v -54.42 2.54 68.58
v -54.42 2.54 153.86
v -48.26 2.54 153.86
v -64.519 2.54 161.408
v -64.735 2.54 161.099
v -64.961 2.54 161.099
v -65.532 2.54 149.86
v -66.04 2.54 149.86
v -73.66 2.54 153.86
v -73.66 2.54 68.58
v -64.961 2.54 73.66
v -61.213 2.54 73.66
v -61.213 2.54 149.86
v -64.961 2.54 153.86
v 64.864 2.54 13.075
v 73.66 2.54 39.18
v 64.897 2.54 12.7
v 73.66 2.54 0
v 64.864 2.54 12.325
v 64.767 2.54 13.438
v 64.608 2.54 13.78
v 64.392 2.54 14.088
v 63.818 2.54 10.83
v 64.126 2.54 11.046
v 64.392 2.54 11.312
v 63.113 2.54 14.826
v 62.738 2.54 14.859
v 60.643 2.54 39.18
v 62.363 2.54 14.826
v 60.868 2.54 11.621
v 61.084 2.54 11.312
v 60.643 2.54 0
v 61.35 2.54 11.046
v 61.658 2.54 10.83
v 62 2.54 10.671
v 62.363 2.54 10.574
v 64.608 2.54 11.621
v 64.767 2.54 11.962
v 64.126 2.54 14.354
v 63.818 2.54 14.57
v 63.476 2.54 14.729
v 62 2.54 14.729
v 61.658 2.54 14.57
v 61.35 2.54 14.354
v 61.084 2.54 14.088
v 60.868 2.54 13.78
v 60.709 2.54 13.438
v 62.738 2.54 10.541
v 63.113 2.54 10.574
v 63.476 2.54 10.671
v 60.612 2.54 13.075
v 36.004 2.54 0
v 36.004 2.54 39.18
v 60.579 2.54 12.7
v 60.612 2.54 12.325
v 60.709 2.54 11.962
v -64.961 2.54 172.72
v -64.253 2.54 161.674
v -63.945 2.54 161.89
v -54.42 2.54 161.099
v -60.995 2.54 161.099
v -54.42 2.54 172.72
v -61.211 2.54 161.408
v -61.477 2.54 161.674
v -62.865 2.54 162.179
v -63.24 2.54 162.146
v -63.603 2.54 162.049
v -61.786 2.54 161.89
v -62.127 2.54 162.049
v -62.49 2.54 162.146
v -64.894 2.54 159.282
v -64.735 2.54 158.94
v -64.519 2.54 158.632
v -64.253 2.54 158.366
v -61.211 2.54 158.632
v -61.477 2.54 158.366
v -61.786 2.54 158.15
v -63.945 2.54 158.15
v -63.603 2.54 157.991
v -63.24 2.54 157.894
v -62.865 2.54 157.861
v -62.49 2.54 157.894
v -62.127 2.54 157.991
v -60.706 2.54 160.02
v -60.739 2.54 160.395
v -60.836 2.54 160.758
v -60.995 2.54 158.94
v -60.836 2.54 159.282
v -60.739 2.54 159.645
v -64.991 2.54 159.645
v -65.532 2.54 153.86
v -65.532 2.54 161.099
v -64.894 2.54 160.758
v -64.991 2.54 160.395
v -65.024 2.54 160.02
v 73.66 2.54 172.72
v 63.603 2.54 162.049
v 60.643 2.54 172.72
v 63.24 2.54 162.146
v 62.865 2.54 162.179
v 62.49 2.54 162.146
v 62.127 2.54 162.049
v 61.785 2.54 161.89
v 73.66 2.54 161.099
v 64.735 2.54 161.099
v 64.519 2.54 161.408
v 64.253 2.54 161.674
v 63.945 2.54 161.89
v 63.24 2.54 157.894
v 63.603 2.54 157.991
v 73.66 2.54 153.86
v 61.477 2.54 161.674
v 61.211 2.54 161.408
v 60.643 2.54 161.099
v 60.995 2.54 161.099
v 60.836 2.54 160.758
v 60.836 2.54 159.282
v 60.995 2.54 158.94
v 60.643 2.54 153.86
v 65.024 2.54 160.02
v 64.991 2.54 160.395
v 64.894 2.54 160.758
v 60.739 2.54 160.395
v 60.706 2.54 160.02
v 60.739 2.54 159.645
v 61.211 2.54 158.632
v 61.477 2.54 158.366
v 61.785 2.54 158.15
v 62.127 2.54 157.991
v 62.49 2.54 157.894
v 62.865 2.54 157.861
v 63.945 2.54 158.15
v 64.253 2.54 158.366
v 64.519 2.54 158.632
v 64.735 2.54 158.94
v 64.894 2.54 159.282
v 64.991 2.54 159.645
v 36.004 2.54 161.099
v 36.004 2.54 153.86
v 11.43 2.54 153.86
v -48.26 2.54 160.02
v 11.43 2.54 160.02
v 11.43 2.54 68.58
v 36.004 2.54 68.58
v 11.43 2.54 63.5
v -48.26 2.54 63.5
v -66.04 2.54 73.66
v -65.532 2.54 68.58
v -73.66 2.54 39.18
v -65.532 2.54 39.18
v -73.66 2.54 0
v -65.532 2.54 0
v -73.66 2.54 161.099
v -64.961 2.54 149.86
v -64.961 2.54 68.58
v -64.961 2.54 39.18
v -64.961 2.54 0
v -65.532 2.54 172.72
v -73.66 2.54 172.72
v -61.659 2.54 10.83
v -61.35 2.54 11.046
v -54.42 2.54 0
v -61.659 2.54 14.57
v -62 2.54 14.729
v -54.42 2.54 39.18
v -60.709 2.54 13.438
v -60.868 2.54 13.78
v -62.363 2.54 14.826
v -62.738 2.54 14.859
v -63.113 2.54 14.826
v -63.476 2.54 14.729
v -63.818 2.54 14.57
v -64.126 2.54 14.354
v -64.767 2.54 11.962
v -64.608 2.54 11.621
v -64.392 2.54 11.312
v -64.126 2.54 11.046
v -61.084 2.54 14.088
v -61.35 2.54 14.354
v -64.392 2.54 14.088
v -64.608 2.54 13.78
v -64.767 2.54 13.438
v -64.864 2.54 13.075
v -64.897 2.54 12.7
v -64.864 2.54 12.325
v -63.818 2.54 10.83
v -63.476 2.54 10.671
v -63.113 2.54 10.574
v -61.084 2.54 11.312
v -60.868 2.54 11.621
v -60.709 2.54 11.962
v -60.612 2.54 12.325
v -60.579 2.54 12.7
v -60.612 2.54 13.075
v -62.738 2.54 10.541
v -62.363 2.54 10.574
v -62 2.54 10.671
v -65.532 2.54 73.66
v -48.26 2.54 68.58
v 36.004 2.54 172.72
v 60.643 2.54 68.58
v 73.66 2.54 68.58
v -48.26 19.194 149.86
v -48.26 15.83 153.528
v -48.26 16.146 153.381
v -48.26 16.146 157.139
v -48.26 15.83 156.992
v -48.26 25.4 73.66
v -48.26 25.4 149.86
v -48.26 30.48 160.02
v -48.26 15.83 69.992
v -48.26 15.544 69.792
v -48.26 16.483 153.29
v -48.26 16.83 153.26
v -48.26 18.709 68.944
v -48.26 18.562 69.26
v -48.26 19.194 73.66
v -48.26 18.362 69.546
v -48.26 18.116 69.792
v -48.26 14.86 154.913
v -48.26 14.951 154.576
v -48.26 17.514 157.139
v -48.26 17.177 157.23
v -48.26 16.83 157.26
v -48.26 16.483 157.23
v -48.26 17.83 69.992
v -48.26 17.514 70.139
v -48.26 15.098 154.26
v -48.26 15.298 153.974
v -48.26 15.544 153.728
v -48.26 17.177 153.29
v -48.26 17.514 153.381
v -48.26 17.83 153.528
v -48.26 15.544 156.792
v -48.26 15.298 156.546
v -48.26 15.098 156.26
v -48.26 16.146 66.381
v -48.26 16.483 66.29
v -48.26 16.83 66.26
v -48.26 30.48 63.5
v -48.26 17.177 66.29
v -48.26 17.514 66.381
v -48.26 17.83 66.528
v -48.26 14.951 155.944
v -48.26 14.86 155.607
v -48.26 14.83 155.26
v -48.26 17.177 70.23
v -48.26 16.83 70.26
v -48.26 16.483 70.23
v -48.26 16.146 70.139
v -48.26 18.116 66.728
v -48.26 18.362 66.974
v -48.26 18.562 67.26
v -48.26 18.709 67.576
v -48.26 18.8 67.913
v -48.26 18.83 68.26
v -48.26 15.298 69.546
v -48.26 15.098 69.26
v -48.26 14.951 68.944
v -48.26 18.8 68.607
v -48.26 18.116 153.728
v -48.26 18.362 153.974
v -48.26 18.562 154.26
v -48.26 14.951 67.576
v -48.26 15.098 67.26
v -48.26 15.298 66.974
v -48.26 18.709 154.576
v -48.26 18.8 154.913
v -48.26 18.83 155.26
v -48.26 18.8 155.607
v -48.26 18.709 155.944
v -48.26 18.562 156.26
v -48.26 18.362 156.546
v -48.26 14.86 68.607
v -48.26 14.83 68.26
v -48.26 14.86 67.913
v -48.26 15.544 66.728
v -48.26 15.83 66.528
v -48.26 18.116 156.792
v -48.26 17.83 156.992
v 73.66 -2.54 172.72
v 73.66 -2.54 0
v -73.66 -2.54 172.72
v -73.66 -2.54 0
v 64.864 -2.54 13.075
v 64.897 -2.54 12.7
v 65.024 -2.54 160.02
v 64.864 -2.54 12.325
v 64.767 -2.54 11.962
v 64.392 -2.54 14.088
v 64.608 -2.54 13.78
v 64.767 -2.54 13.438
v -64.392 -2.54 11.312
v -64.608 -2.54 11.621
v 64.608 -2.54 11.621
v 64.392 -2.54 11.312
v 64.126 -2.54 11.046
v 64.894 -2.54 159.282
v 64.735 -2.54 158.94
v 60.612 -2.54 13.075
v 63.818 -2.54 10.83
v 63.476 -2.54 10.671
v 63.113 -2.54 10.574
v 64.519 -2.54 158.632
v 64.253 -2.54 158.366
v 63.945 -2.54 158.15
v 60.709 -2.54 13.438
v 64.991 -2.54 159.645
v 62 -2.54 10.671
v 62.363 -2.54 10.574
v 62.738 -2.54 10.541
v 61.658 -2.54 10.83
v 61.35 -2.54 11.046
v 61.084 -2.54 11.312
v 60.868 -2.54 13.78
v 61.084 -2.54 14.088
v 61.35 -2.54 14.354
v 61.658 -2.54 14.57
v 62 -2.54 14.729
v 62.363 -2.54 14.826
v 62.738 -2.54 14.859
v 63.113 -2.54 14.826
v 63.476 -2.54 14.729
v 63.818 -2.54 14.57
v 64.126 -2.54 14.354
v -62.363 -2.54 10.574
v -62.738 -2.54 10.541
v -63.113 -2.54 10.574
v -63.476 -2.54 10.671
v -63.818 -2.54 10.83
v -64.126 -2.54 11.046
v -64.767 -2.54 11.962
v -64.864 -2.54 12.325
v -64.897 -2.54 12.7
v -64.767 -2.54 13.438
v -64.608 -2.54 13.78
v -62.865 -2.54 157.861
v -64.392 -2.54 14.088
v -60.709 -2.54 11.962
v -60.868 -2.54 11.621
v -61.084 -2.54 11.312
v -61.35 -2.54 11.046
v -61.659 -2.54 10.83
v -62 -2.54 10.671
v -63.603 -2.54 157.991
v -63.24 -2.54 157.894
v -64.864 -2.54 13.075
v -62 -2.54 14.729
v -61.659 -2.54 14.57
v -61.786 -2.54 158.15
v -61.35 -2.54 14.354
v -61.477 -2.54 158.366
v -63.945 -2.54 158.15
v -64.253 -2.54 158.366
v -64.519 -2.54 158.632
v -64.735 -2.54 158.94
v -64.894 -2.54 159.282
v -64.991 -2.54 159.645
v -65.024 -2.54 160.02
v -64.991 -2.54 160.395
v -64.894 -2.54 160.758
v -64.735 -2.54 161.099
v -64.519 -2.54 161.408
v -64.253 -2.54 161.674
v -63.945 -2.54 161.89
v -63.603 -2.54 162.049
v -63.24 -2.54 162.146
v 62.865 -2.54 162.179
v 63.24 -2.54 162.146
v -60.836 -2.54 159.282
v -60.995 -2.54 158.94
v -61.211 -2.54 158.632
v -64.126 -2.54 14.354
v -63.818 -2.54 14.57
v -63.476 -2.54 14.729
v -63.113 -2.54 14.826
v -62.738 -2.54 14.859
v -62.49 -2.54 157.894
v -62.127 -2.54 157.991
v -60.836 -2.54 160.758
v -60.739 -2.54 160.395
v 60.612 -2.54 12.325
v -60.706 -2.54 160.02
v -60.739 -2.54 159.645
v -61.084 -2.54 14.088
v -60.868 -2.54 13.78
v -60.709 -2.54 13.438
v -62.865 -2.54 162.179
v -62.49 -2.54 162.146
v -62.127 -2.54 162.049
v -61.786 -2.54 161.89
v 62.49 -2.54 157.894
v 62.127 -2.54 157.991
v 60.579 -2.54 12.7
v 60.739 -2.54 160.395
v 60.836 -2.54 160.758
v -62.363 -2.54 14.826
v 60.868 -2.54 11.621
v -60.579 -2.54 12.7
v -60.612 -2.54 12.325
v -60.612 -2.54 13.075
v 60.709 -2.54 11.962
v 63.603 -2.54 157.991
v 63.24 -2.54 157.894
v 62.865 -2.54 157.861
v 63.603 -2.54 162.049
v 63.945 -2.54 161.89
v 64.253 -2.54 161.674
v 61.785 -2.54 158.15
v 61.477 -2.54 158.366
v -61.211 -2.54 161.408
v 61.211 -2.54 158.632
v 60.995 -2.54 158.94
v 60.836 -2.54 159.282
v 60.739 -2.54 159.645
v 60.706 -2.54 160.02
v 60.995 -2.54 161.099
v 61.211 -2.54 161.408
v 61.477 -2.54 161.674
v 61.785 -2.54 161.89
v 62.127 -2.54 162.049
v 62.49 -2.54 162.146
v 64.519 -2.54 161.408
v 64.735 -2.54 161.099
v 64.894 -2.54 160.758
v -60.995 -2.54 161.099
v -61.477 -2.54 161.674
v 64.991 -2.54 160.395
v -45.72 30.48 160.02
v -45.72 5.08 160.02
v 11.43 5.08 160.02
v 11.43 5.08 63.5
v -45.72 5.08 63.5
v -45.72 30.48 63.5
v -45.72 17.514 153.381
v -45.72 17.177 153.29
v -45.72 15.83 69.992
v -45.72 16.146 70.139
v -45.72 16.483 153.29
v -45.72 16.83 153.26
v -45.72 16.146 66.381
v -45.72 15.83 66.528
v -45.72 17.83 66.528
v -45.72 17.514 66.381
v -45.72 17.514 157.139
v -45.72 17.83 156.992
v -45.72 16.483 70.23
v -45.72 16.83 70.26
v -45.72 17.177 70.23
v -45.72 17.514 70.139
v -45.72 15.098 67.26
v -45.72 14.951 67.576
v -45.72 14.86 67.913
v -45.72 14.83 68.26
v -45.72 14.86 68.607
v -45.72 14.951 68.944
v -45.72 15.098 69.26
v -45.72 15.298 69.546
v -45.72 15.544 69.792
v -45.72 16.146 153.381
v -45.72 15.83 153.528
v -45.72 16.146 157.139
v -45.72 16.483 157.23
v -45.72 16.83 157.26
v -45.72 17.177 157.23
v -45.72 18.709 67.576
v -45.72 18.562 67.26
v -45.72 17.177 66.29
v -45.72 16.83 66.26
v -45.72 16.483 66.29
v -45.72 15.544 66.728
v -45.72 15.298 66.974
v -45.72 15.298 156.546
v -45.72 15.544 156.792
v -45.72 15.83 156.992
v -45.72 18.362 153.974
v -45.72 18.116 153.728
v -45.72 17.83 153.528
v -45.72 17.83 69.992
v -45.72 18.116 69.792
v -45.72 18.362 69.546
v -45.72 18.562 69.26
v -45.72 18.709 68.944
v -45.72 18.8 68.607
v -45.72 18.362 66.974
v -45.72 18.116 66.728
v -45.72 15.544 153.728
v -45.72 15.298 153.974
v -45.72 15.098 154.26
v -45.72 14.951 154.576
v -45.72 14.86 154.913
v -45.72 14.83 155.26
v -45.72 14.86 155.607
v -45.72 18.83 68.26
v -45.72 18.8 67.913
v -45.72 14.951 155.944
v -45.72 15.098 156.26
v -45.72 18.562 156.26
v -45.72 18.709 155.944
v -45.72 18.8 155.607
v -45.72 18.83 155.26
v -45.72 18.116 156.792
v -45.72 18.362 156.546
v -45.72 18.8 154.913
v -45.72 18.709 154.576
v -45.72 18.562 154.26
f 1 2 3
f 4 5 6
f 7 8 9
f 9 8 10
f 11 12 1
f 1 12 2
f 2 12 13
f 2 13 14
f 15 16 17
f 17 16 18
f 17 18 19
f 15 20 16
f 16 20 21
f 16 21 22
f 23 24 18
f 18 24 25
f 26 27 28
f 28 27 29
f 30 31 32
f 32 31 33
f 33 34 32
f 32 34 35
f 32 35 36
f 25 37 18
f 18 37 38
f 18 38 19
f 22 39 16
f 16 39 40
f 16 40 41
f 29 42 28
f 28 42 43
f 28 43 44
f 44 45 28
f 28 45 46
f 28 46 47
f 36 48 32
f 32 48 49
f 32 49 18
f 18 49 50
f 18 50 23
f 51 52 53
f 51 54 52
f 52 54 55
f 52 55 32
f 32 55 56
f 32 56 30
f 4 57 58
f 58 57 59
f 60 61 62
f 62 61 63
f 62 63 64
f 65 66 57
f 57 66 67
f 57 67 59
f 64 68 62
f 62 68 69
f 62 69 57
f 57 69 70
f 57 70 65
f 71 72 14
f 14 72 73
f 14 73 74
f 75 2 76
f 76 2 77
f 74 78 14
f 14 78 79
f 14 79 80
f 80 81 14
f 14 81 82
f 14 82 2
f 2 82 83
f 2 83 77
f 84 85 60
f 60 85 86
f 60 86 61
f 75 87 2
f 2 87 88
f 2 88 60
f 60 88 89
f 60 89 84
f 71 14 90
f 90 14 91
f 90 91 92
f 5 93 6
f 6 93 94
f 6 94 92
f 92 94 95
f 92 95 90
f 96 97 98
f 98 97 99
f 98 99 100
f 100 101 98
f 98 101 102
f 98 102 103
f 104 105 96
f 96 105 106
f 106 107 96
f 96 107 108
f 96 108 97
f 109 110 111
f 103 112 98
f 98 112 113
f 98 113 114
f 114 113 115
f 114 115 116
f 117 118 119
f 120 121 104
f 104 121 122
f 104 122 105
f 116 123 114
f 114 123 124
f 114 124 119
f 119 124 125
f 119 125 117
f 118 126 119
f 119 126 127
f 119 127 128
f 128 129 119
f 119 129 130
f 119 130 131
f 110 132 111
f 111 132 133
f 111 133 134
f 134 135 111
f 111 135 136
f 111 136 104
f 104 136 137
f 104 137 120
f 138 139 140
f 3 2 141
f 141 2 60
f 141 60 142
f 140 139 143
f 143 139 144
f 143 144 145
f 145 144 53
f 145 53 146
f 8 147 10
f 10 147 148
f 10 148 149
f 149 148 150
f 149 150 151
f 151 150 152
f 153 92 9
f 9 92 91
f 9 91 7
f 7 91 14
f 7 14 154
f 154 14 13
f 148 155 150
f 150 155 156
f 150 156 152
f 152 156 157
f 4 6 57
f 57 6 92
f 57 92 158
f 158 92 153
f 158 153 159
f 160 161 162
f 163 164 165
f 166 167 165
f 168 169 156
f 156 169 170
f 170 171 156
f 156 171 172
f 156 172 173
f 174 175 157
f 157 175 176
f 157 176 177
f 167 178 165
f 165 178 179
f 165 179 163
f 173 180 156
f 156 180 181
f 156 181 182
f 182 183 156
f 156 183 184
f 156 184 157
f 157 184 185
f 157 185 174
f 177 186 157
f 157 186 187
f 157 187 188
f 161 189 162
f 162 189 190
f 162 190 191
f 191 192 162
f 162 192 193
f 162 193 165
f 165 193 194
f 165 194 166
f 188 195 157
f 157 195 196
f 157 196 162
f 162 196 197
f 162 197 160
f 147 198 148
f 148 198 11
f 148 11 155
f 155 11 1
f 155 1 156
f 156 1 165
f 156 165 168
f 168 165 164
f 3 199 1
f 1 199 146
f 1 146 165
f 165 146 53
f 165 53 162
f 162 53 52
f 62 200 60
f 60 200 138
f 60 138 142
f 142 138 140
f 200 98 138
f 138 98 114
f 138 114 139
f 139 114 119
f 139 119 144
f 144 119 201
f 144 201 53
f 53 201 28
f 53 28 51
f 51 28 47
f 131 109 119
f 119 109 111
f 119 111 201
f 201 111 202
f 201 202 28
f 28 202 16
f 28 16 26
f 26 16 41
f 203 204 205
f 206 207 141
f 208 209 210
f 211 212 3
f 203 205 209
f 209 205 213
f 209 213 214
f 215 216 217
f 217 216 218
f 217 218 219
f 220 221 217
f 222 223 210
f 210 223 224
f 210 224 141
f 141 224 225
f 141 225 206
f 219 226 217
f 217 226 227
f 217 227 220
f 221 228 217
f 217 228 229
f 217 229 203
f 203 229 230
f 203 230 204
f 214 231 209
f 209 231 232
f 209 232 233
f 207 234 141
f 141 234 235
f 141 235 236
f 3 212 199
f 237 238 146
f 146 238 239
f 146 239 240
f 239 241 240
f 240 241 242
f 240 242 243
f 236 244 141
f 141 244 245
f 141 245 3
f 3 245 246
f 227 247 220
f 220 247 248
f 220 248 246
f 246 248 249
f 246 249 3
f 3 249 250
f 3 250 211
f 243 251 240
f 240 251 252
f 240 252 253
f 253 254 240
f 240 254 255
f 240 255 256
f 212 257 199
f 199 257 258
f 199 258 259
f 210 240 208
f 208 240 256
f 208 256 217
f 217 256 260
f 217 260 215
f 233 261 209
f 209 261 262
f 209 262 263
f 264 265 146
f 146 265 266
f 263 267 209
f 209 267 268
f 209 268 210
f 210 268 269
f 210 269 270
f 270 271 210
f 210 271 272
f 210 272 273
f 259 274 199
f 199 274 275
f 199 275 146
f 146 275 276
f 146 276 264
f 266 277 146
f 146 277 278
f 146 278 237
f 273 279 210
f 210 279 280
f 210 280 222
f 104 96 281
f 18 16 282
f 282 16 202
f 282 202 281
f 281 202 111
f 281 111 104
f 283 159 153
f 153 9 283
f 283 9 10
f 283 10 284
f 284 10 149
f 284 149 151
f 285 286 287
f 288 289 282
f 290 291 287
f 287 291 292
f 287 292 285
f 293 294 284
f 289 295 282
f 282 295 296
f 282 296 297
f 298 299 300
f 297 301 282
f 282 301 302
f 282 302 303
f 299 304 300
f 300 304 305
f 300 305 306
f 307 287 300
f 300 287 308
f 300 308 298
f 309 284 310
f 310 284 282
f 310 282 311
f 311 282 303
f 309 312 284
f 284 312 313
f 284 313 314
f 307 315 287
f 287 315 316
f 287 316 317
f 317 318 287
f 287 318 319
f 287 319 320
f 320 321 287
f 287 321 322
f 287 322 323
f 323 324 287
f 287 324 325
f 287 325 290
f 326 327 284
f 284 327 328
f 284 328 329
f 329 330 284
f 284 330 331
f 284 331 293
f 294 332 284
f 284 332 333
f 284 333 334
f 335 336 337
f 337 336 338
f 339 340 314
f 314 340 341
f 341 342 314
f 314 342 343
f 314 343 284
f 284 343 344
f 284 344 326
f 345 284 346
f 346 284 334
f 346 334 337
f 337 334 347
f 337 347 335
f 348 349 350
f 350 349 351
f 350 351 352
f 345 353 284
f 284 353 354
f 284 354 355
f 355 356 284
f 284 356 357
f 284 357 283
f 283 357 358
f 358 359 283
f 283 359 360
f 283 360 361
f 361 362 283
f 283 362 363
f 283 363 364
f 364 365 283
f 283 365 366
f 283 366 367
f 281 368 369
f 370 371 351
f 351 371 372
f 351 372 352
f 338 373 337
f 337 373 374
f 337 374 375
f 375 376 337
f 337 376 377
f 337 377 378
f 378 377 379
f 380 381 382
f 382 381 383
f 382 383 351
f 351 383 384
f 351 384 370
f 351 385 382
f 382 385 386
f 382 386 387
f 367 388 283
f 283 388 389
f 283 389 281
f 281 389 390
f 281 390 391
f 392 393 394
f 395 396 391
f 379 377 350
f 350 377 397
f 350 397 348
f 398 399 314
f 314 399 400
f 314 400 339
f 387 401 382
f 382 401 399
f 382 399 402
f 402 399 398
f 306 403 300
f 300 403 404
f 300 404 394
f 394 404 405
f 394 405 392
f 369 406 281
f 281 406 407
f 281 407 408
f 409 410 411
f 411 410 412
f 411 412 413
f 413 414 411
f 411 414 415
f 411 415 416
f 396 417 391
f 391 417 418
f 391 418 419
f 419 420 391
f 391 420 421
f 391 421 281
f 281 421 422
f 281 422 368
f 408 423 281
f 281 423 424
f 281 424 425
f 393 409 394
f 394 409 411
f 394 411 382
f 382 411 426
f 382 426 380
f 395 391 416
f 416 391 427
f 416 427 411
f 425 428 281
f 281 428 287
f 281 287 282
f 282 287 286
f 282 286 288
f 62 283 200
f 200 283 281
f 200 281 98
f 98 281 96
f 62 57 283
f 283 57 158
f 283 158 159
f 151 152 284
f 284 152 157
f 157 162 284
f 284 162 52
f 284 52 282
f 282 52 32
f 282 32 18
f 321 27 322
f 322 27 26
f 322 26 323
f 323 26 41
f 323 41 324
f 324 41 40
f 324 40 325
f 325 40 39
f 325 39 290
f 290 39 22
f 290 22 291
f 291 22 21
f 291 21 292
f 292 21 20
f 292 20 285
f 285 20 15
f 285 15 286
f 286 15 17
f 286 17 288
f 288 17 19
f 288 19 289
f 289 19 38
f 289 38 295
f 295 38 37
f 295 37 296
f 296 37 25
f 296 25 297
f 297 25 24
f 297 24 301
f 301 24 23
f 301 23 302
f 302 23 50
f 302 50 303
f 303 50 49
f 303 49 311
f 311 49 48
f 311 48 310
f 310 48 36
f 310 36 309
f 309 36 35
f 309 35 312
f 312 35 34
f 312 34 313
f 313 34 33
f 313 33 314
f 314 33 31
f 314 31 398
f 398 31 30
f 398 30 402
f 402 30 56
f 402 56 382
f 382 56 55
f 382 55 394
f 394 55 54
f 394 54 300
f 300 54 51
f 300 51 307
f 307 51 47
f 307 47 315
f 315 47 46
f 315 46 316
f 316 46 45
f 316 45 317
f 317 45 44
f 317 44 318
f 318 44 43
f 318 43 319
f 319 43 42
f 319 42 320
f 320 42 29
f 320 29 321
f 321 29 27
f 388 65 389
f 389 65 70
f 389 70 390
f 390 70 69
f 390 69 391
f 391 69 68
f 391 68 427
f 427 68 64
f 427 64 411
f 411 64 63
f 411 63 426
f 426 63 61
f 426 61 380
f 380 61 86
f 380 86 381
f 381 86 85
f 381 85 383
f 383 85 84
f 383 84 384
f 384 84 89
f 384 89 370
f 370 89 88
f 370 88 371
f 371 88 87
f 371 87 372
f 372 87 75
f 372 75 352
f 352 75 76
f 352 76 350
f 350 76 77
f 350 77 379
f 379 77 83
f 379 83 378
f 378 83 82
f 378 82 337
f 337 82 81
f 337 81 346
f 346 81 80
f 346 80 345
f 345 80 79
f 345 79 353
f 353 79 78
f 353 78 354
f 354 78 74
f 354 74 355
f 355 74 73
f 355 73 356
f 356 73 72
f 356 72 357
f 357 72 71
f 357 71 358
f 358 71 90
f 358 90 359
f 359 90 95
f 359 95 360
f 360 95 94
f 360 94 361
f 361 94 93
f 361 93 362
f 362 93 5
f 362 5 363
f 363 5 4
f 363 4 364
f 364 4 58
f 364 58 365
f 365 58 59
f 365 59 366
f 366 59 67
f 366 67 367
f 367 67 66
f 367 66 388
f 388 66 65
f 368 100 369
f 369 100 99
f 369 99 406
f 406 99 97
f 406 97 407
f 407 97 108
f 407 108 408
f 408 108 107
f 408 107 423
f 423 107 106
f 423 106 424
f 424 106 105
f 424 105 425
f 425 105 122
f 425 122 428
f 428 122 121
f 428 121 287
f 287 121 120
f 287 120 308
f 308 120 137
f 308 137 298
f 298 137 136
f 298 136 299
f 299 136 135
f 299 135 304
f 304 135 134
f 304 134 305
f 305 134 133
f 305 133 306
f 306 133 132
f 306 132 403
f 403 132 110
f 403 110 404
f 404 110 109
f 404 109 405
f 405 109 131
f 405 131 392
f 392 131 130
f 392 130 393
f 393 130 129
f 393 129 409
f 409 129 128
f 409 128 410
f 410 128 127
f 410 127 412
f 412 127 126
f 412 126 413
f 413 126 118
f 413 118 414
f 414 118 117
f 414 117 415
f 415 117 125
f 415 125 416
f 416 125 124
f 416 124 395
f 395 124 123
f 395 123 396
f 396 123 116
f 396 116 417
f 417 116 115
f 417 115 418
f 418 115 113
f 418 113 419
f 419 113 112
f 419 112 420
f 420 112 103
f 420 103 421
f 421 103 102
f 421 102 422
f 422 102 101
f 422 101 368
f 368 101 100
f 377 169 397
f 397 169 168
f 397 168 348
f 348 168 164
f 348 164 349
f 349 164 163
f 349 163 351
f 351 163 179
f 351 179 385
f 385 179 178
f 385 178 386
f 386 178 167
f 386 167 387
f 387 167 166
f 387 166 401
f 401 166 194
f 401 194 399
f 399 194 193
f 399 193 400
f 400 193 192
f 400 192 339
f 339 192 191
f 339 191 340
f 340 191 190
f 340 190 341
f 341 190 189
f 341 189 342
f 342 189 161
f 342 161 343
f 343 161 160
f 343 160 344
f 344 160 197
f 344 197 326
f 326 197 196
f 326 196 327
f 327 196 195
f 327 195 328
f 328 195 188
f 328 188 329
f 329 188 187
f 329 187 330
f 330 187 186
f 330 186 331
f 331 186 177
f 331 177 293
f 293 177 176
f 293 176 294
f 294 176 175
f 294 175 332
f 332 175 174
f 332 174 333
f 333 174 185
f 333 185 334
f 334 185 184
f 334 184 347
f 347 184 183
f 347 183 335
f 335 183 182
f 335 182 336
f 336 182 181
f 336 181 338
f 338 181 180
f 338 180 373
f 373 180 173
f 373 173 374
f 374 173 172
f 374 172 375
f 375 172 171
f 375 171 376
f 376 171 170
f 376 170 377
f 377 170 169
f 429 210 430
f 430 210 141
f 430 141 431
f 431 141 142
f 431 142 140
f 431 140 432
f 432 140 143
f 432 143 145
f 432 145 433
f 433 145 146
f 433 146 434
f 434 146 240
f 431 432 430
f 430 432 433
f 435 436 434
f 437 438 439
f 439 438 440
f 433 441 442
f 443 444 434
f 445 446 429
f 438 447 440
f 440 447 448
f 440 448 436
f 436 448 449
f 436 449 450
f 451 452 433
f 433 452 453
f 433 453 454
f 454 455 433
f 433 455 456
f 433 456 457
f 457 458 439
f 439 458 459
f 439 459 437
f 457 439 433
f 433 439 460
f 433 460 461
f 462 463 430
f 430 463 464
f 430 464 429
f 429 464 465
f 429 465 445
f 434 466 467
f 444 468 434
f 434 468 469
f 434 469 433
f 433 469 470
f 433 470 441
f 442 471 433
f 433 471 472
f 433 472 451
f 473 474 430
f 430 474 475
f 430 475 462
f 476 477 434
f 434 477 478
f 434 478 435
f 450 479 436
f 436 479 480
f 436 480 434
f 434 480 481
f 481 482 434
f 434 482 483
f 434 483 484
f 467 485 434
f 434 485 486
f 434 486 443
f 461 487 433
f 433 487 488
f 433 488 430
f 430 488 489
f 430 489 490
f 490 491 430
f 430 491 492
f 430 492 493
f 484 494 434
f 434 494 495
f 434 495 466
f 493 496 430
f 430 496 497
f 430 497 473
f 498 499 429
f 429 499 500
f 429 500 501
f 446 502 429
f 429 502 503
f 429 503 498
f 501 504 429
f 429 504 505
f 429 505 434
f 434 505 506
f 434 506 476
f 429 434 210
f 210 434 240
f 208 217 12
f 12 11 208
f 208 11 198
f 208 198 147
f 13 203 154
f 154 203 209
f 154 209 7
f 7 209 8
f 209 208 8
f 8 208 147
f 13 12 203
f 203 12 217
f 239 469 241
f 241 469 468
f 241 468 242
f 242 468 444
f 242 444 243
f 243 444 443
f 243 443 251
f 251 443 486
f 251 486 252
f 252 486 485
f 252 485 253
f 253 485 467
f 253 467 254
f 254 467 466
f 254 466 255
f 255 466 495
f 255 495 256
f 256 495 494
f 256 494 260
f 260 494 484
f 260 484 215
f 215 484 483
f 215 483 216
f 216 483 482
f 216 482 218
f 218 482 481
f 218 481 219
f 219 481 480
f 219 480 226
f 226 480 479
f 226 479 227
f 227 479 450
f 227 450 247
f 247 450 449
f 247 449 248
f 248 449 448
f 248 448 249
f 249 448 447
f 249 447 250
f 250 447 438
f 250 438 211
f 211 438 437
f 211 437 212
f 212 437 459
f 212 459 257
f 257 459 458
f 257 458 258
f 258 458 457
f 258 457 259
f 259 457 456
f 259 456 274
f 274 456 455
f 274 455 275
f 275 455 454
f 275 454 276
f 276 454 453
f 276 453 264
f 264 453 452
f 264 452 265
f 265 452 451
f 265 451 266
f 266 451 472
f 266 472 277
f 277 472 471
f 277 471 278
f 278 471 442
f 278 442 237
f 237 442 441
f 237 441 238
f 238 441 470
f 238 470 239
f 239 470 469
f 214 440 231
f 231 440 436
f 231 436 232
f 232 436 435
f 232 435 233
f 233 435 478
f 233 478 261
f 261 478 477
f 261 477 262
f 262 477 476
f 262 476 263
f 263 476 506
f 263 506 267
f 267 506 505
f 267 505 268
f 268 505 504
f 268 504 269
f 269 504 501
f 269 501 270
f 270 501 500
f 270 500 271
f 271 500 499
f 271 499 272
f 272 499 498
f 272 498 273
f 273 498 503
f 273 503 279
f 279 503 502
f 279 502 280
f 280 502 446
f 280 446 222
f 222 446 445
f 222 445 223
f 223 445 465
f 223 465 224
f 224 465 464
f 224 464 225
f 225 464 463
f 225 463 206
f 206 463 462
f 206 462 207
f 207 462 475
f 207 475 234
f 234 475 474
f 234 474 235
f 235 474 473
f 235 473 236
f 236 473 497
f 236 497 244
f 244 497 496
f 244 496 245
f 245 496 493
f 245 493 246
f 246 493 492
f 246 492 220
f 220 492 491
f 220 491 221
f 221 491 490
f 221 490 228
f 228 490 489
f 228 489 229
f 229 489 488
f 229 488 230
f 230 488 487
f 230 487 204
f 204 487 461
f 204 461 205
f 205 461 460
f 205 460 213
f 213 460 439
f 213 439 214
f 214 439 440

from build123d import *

# Parameters (mm, degrees)
SKETCH1_W           = 147.32
SKETCH1_H           = 5.08
BOSS_EXTRUDE1_DEPTH = 172.72
SKETCH2_R           = 2.159
CUT_EXTRUDE1_DEPTH  = 6.08
SKETCH3_W           = 59.69
SKETCH3_H           = 96.52
BOSS_EXTRUDE2_DEPTH = 2.54
SKETCH4_W           = 2.54
SKETCH4_H           = 96.52
BOSS_EXTRUDE3_DEPTH = 25.4
SKETCH5_W           = 76.2
SKETCH5_H           = 22.86
BOSS_EXTRUDE4_DEPTH = 17.78
CUT_EXTRUDE2_DEPTH  = 150.86
SKETCH7_R           = 2
CUT_EXTRUDE3_DEPTH  = 28.94


with BuildPart() as part:
    # Sketch1 → Boss-Extrude1 (new body)
    with BuildSketch(Plane.XY):
        Rectangle(SKETCH1_W, SKETCH1_H)
    extrude(amount=BOSS_EXTRUDE1_DEPTH)

    # Sketch2 → Cut-Extrude1 (cut, through all)
    with BuildSketch(Plane(origin=(0, 2.54, 0), x_dir=(1, 0, 0), z_dir=(0, 1, 0))):
        with Locations((62.738, -12.7)):
            Circle(SKETCH2_R)
        with Locations((-62.865, -160.02)):
            Circle(SKETCH2_R)
        with Locations((62.865, -160.02)):
            Circle(SKETCH2_R)
        with Locations((-62.738, -12.7)):
            Circle(SKETCH2_R)
    extrude(amount=-CUT_EXTRUDE1_DEPTH, mode=Mode.SUBTRACT)

    # Sketch3 → Boss-Extrude2 (add)
    with BuildSketch(Plane(origin=(0, 2.54, 0), x_dir=(1, 0, 0), z_dir=(0, 1, 0))):
        with Locations((-18.415, -111.76)):
            Rectangle(SKETCH3_W, SKETCH3_H)
    extrude(amount=BOSS_EXTRUDE2_DEPTH)

    # Sketch4 → Boss-Extrude3 (add)
    with BuildSketch(Plane(origin=(0, 5.08, 0), x_dir=(1, 0, 0), z_dir=(0, 1, 0))):
        with Locations((-46.99, -111.76)):
            Rectangle(SKETCH4_W, SKETCH4_H)
    extrude(amount=BOSS_EXTRUDE3_DEPTH)

    # Sketch5 → Boss-Extrude4 (add)
    with BuildSketch(Plane.ZY.offset(48.26)):
        with Locations((111.76, 13.97)):
            Rectangle(SKETCH5_W, SKETCH5_H)
    extrude(amount=BOSS_EXTRUDE4_DEPTH)

    # Sketch6 → Cut-Extrude2 (cut, through all)
    with BuildSketch(Plane.XY.offset(149.86)):
        Polygon((-66.04, 2.54), (-48.26, 25.4), (-66.04, 25.4), align=None)
        Polygon((-61.213257367, 2.54), (-48.26, 19.194188043), (-48.26, 2.54), align=None)
    extrude(amount=-CUT_EXTRUDE2_DEPTH, mode=Mode.SUBTRACT)

    # Sketch7 → Cut-Extrude3 (cut, through all)
    with BuildSketch(Plane(origin=(-45.72, 0, 0), x_dir=(0, 0, -1), z_dir=(1, 0, 0))):
        with Locations((-155.26, 16.83)):
            Circle(SKETCH7_R)
        with Locations((-68.26, 16.83)):
            Circle(SKETCH7_R)
    extrude(amount=-CUT_EXTRUDE3_DEPTH, mode=Mode.SUBTRACT)


solid = part.part
